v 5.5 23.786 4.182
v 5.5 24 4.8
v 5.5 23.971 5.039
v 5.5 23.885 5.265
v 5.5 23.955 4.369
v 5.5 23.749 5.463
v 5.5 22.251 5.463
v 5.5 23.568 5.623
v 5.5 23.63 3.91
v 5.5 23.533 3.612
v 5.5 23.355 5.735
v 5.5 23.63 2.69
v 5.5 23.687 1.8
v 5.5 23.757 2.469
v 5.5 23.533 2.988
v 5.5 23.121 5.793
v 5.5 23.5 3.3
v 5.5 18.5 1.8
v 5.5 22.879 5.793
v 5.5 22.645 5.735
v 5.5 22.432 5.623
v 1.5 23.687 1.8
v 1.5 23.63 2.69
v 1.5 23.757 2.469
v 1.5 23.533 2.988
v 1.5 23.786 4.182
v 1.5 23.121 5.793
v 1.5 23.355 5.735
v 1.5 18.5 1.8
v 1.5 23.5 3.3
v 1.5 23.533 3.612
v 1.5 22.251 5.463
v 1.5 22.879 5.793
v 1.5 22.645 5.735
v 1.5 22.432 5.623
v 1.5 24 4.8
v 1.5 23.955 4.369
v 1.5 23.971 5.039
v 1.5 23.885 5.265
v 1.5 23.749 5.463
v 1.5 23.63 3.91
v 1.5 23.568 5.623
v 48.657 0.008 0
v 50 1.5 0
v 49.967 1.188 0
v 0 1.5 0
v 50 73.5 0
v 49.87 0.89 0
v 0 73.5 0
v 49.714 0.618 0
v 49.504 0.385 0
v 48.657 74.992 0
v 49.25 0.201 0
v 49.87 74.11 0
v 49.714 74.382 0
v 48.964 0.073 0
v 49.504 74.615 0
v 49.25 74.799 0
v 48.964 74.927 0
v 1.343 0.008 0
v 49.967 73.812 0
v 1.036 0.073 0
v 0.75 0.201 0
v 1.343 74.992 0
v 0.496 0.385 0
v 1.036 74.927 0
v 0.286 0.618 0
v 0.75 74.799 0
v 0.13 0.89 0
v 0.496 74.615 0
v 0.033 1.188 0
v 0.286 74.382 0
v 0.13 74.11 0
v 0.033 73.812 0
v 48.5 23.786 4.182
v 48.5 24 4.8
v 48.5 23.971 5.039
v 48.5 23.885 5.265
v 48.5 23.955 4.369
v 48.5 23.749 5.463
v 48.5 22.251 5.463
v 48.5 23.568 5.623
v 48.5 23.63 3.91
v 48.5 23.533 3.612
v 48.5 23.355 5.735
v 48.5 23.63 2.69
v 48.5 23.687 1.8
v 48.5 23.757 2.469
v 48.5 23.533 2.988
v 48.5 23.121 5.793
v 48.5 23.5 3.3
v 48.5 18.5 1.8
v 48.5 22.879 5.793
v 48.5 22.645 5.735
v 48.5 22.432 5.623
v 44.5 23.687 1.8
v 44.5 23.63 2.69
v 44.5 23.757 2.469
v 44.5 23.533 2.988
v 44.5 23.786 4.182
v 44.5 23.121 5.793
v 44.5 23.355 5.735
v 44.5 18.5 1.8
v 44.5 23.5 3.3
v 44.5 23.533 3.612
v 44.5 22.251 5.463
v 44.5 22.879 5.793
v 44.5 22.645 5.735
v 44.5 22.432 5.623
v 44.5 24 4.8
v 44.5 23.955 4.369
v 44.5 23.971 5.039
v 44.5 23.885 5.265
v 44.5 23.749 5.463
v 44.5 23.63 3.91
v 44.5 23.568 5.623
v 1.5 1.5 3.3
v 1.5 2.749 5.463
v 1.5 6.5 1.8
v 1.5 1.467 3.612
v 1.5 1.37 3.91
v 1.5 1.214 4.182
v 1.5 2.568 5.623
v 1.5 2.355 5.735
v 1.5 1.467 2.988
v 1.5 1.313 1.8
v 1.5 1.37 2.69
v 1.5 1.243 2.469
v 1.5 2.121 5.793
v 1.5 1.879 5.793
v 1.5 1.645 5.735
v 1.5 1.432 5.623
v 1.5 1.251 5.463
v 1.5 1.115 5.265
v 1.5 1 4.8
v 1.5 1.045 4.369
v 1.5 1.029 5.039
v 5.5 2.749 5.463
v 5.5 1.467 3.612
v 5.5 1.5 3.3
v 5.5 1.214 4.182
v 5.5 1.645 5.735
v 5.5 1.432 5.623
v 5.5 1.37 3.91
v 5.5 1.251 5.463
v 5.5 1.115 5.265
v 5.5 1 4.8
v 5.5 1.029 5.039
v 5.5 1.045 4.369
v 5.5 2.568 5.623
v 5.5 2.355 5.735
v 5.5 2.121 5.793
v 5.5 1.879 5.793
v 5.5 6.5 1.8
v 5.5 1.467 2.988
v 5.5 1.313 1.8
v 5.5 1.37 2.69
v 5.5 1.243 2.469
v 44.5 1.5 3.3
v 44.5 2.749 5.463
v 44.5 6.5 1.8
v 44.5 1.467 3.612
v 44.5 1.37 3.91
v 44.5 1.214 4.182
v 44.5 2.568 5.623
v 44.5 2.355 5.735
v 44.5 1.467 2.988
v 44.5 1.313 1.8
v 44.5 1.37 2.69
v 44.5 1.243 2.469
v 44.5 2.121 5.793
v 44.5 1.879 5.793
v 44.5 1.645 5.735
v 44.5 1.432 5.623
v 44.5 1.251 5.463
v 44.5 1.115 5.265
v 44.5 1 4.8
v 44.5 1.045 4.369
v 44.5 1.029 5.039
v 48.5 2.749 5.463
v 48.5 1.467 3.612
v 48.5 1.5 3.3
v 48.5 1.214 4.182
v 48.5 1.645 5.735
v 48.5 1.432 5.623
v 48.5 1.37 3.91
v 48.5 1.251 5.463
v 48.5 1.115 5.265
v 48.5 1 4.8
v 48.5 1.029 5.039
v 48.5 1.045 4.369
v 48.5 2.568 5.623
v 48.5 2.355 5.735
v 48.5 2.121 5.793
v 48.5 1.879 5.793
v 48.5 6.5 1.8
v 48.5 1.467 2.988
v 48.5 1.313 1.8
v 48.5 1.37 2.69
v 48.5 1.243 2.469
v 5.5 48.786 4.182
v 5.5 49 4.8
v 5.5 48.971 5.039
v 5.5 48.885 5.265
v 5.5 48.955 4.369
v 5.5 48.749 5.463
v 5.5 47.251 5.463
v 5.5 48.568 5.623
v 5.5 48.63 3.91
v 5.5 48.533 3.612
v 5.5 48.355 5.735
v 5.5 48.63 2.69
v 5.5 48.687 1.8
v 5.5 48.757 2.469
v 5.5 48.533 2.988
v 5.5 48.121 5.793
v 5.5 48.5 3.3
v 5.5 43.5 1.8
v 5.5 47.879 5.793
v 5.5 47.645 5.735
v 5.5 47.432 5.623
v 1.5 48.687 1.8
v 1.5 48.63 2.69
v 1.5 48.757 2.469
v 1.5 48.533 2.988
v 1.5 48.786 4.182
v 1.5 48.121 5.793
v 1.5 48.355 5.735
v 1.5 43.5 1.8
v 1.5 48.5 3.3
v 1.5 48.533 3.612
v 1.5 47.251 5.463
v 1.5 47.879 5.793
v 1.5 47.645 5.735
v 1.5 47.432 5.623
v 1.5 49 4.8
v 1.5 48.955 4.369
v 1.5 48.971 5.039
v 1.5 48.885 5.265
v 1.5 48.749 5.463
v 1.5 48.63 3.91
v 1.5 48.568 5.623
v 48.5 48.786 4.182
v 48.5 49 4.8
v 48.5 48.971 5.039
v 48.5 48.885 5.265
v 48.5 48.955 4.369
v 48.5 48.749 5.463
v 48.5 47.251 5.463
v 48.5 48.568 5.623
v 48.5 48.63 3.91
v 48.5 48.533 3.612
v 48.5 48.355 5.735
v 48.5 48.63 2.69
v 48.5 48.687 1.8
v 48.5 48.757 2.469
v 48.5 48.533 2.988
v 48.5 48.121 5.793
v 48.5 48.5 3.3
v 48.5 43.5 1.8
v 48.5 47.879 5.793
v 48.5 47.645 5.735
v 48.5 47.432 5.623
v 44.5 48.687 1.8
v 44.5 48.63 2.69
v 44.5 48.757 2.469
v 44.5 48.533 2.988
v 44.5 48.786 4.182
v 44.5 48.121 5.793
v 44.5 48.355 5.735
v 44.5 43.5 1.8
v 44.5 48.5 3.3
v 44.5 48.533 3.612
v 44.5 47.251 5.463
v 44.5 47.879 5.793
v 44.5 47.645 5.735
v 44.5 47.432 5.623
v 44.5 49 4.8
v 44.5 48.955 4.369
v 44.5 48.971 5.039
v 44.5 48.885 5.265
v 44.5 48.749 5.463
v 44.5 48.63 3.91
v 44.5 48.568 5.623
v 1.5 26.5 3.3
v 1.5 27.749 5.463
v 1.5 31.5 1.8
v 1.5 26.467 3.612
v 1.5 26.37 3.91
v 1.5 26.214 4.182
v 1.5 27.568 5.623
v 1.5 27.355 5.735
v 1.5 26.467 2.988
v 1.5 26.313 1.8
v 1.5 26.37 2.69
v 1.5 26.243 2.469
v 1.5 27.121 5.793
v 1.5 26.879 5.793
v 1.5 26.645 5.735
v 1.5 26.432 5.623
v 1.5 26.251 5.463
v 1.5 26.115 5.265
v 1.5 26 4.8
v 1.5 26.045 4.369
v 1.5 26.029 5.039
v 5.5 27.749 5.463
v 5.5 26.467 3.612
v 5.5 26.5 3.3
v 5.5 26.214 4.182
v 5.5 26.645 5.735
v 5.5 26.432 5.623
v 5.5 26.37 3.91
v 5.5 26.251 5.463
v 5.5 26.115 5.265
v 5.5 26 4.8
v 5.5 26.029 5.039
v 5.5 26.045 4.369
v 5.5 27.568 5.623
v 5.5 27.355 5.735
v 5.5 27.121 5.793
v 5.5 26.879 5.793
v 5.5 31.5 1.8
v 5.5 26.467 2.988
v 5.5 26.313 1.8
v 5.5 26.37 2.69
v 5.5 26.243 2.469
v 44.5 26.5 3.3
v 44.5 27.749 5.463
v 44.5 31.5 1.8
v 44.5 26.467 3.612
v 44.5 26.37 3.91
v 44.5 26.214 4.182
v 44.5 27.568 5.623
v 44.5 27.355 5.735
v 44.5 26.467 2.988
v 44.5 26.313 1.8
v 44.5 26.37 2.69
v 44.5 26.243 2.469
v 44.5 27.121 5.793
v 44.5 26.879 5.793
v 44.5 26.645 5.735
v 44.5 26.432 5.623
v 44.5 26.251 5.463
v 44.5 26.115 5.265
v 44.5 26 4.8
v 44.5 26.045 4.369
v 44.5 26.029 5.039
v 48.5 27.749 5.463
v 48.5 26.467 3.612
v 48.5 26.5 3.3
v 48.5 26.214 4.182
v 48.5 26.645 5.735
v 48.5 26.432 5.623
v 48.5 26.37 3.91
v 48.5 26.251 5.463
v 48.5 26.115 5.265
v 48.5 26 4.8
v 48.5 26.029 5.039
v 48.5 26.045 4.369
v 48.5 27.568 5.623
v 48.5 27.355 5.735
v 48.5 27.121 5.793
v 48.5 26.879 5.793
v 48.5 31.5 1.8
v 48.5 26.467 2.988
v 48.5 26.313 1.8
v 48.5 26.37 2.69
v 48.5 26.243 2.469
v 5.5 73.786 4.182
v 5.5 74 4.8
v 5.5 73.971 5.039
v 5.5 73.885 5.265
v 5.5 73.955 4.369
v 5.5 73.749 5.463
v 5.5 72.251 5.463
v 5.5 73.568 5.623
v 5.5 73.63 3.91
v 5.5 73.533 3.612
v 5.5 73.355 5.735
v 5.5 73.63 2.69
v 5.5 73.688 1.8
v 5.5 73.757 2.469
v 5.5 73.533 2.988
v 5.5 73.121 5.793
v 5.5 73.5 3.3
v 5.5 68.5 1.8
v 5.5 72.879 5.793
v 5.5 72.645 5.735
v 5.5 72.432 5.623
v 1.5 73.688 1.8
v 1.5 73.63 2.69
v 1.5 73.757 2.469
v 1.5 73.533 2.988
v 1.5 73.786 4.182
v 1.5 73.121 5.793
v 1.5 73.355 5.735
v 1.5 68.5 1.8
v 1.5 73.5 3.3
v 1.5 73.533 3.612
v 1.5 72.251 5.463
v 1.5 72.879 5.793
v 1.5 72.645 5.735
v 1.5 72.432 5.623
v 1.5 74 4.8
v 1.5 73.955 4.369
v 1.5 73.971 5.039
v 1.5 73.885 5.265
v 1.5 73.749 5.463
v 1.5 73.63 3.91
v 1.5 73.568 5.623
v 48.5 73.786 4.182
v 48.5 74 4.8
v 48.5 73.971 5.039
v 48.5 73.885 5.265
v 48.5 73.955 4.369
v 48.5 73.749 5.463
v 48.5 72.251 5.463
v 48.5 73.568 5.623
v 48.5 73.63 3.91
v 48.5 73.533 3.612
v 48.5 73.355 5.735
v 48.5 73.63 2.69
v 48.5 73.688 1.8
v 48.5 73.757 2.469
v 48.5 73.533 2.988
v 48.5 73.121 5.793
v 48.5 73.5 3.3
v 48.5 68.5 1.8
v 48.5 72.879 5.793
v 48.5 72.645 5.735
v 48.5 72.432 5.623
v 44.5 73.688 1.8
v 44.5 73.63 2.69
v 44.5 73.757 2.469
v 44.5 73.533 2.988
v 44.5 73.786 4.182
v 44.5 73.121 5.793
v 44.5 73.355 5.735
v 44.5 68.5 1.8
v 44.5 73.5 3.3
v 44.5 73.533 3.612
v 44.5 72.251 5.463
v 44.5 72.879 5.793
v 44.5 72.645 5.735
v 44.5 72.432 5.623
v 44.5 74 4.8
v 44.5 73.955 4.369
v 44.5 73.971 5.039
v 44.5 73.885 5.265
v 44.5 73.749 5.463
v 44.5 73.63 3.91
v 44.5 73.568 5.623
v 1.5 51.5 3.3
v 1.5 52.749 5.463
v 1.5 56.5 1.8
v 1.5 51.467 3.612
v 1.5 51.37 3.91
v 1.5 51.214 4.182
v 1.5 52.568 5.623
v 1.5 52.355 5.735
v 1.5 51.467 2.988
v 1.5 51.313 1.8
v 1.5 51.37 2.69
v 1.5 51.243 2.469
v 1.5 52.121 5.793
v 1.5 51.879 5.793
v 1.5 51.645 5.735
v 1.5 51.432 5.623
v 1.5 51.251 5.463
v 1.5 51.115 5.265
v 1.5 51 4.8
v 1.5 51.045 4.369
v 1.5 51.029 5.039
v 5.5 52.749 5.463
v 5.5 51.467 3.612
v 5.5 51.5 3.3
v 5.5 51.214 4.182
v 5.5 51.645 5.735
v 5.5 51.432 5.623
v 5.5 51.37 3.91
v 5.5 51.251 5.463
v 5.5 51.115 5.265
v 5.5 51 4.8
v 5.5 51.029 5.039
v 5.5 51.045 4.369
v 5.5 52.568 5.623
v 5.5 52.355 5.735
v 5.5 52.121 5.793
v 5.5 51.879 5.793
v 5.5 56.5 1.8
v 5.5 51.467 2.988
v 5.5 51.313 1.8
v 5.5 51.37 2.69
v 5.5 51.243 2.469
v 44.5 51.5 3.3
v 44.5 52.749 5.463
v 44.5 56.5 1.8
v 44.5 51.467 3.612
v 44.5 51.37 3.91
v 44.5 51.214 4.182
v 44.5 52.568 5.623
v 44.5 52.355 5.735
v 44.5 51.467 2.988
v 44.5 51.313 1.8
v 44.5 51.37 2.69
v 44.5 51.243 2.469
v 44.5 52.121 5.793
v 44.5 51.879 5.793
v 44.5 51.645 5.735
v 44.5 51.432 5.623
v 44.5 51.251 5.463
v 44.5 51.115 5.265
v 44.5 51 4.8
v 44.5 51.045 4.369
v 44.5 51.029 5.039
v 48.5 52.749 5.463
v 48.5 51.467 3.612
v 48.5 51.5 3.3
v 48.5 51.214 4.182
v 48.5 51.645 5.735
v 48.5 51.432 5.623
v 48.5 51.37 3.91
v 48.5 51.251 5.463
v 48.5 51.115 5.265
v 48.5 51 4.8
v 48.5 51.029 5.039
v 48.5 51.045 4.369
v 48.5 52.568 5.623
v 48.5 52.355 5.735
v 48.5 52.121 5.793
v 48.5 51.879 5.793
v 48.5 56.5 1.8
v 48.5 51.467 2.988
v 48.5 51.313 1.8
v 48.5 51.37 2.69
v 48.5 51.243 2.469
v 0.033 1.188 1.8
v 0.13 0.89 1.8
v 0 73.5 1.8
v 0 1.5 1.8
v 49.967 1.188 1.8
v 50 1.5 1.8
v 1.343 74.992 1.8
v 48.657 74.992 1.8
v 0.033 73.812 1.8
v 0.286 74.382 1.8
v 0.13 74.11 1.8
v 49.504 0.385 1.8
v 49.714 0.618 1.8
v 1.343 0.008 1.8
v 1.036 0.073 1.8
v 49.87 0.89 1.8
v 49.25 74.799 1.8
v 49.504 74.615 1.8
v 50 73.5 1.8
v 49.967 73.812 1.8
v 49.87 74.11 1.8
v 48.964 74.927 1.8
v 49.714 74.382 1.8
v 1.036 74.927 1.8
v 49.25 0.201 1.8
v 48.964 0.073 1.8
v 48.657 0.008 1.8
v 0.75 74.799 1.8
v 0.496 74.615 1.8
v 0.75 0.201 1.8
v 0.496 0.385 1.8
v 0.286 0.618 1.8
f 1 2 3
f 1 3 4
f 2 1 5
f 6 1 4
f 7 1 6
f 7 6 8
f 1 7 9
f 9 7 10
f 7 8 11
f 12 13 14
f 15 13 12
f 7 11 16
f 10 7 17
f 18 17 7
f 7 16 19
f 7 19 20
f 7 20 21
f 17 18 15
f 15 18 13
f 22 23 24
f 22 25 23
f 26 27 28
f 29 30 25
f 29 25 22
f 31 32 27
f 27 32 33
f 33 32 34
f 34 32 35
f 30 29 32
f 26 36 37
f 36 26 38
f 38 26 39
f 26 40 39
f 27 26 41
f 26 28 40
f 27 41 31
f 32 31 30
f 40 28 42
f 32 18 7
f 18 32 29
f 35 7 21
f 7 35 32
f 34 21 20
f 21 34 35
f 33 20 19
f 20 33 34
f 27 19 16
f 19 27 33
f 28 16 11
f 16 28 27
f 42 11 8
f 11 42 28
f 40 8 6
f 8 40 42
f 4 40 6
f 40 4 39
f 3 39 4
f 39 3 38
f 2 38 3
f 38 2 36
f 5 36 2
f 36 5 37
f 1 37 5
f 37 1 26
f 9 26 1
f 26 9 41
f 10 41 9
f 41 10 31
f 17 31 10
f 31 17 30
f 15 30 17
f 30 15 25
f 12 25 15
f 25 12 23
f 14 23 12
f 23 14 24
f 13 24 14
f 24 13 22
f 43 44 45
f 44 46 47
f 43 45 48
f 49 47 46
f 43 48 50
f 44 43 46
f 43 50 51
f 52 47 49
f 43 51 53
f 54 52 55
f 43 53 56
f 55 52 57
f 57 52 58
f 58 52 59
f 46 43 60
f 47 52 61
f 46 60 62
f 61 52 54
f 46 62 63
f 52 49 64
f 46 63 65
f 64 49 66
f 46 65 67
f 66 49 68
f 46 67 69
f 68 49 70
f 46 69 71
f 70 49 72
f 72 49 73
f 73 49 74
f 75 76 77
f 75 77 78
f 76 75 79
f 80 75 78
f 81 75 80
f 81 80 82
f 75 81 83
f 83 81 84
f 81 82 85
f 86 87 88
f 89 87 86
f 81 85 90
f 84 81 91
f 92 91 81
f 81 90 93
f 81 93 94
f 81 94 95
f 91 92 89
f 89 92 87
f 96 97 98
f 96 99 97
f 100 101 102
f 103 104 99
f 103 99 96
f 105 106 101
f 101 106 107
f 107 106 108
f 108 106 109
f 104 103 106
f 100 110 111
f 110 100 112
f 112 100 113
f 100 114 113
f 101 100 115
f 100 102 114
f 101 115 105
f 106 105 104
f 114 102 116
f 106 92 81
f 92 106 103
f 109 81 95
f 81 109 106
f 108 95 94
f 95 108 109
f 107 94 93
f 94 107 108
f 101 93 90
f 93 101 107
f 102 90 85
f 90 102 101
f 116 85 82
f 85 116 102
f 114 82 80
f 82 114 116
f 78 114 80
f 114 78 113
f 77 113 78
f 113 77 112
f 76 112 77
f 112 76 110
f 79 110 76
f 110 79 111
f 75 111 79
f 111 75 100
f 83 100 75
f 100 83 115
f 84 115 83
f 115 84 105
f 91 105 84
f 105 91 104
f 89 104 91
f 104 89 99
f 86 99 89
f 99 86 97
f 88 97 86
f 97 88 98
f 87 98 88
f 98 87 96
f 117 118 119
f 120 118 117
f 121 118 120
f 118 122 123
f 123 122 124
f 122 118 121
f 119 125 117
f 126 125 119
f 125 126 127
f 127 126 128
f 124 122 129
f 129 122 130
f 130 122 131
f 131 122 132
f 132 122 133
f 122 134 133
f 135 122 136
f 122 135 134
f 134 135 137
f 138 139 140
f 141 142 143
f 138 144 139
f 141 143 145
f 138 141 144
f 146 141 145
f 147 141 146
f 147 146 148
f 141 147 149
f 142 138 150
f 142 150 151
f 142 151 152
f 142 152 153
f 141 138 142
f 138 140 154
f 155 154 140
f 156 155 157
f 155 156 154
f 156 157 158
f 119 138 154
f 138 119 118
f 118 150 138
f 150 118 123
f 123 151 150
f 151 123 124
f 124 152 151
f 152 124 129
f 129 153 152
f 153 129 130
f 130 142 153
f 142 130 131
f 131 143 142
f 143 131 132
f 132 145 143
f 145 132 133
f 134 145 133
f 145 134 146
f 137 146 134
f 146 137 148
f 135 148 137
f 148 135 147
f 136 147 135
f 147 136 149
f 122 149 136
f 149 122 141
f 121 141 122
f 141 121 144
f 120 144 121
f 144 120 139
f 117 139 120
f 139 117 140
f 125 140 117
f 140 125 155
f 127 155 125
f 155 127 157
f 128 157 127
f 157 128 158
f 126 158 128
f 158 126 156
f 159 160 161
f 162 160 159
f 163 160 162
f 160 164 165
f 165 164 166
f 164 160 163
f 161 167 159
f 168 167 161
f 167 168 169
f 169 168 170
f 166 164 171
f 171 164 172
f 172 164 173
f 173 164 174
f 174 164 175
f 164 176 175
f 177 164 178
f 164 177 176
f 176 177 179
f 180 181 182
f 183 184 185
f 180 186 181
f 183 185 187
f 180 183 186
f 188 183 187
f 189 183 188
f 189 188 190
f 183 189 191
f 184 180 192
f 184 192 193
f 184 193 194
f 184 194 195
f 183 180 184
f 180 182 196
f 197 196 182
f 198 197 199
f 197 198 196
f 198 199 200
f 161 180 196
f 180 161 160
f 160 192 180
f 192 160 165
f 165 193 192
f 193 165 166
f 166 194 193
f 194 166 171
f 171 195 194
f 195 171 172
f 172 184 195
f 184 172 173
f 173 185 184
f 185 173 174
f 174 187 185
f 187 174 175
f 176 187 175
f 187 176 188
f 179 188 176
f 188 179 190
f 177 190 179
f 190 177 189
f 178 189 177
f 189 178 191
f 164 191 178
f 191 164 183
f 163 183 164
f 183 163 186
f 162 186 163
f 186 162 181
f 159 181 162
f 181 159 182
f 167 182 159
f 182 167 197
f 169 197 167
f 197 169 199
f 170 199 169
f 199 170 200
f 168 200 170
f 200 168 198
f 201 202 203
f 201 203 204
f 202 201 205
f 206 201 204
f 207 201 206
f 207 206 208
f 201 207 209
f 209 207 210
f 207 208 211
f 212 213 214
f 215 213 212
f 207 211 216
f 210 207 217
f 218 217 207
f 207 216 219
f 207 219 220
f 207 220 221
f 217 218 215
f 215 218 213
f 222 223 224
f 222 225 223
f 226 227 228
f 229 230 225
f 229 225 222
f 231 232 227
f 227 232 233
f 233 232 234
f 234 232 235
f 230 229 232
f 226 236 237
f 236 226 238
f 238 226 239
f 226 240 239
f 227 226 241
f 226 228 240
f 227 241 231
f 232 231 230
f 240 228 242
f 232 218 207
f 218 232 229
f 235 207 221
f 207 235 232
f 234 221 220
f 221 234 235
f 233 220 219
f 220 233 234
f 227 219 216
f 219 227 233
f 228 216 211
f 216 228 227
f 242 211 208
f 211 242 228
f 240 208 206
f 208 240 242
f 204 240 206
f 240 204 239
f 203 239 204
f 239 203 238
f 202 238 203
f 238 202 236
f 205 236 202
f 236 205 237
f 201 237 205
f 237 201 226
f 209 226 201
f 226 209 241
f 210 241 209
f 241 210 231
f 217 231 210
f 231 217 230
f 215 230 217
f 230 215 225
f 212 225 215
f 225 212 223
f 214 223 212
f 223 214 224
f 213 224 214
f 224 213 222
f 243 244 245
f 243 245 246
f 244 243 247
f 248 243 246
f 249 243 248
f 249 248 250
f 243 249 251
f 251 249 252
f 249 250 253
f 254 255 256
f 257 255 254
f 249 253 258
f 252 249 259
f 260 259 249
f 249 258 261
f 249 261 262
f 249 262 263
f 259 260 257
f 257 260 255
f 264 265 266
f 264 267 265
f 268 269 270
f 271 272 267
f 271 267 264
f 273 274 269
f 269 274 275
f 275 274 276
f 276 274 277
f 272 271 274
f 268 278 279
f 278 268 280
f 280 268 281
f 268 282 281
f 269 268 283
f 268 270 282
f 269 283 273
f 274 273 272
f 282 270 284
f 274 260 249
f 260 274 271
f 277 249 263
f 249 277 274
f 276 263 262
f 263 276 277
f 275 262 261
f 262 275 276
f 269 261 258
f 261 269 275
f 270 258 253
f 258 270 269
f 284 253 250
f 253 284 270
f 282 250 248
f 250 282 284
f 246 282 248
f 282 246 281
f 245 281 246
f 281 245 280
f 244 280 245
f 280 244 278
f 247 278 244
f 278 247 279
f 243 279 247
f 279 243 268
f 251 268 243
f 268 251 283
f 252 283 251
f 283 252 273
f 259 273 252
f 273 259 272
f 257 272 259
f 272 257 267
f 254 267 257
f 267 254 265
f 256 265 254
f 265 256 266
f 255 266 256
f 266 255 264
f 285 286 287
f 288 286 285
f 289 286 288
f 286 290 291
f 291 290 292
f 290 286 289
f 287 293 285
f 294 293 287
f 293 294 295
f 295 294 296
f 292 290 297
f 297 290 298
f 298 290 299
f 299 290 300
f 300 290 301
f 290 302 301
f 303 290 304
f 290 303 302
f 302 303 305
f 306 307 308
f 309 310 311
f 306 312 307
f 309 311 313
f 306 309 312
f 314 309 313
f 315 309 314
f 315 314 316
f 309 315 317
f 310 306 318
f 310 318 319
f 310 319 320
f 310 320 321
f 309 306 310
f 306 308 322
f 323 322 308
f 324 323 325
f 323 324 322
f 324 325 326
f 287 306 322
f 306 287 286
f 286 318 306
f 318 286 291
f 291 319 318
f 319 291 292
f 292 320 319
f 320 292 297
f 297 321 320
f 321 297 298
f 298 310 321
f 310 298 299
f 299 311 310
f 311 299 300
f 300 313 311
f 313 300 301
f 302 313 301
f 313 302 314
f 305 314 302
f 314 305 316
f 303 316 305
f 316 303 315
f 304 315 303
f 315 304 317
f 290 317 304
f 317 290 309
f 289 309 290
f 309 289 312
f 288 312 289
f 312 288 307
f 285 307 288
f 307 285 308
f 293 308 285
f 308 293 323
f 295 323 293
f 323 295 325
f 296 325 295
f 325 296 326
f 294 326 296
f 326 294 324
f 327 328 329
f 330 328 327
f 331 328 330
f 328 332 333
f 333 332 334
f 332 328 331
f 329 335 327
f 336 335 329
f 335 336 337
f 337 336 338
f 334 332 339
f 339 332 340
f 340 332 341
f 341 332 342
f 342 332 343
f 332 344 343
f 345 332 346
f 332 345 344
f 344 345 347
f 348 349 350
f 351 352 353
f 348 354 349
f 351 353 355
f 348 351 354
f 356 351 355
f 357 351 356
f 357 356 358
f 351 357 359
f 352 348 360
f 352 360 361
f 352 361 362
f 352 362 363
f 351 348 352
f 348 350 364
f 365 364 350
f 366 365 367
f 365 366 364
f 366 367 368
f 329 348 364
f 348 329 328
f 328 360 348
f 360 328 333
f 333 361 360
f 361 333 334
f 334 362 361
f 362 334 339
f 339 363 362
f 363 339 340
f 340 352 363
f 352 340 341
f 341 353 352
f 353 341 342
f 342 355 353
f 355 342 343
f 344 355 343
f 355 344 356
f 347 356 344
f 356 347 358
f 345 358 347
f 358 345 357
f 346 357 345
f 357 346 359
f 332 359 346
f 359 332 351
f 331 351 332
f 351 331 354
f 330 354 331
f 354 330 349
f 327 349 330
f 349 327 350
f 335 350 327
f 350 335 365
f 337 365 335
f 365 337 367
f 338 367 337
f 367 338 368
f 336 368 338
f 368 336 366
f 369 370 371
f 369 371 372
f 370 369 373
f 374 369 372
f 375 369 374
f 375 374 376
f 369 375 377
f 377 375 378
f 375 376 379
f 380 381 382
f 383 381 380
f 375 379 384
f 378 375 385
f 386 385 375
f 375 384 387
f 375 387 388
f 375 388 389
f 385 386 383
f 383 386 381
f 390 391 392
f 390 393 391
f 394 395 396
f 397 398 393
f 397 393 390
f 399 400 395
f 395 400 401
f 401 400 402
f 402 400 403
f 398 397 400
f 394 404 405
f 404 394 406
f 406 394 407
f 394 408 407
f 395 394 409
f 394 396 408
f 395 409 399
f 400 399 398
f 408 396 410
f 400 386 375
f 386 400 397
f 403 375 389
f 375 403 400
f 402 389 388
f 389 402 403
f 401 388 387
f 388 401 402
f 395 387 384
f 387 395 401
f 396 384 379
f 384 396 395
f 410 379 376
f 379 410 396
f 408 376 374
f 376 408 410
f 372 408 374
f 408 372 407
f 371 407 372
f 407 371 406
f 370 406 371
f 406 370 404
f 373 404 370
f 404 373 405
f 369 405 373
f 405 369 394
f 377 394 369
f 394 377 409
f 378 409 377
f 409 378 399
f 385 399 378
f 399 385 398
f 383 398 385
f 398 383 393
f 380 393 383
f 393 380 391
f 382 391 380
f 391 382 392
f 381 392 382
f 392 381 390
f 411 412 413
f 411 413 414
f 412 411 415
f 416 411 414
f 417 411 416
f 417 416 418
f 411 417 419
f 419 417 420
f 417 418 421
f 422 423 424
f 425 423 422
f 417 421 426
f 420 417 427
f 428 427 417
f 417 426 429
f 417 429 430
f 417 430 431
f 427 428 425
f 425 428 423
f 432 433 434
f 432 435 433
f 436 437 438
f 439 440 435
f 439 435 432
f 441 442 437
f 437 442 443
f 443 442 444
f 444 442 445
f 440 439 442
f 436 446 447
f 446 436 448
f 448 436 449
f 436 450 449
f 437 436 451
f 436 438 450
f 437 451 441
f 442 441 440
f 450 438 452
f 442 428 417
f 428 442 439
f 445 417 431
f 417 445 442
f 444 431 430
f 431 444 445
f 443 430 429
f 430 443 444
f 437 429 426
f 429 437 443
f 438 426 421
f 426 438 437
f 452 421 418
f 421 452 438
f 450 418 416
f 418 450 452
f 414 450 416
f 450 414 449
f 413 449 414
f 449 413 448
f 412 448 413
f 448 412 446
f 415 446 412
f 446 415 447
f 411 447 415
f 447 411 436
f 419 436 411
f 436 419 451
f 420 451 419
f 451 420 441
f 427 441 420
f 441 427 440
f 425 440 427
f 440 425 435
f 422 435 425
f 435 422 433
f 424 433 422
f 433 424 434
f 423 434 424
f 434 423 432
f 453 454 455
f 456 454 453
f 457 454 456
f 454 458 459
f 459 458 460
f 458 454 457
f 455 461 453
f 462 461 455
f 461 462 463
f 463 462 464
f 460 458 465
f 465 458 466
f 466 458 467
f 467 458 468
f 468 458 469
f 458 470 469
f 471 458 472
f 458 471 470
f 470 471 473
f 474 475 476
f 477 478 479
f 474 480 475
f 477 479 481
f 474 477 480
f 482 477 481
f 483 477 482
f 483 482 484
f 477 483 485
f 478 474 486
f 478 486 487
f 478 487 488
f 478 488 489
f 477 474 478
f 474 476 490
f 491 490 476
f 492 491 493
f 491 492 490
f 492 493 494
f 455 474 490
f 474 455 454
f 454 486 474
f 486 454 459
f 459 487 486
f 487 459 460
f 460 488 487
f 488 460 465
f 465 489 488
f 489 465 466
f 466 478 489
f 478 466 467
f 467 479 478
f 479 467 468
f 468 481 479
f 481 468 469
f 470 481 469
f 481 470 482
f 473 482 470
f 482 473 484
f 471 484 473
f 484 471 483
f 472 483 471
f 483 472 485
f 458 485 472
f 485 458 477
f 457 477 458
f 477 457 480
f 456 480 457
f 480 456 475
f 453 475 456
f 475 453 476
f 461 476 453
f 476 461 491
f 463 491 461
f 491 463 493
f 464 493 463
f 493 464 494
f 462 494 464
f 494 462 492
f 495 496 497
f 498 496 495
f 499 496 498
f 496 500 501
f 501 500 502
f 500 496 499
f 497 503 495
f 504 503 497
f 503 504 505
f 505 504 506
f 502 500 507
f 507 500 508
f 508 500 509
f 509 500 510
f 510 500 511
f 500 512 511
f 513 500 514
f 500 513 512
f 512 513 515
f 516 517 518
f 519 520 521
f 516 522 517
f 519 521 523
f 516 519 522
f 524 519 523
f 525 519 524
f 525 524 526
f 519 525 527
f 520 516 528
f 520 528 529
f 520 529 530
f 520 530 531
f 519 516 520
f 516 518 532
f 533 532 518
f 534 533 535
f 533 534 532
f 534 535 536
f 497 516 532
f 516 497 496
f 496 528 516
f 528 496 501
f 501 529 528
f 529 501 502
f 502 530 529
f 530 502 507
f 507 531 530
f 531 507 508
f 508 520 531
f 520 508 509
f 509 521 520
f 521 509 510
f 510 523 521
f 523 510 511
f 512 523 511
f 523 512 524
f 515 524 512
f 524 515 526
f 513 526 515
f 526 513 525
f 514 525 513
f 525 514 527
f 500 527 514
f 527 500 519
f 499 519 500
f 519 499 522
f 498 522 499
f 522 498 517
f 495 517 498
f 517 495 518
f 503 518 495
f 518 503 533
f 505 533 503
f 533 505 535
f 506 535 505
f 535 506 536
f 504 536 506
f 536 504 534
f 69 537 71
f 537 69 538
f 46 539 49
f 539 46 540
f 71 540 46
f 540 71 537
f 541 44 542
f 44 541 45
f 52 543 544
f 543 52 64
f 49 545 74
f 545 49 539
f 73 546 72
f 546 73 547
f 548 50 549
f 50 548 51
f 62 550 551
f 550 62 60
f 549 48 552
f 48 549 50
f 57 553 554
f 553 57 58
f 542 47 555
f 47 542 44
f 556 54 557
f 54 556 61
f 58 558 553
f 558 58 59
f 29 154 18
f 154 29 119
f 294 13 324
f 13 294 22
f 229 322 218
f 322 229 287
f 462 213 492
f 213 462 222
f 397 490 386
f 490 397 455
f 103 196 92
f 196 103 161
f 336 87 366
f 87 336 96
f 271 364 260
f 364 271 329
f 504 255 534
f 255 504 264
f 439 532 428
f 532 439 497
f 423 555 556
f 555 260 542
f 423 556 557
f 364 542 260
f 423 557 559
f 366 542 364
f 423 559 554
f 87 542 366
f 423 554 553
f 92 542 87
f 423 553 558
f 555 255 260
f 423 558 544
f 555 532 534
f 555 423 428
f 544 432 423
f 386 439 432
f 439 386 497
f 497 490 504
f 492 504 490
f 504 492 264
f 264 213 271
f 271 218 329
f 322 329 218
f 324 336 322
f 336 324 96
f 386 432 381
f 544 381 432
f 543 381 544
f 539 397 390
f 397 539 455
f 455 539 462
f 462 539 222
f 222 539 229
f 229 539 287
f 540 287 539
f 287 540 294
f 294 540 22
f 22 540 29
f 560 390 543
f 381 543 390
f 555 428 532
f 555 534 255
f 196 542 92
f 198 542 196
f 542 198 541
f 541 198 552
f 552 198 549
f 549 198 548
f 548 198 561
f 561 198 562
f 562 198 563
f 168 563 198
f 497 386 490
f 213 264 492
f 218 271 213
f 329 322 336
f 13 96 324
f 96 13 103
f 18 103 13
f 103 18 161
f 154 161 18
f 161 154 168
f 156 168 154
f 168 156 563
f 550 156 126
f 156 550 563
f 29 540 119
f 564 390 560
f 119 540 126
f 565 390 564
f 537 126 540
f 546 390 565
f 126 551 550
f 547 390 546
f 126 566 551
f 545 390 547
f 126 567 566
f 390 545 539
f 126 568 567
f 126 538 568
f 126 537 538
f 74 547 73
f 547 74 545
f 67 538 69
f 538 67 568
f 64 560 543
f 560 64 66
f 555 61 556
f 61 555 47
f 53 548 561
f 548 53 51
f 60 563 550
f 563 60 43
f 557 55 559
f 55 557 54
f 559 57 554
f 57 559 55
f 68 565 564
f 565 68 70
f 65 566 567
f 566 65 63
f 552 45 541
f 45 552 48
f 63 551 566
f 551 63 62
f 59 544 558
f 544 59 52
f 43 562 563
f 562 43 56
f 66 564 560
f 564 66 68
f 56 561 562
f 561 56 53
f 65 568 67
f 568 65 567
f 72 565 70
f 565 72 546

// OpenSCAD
corner_radius = 1.5;
bar_diameter = 3;
bar_distance = 22;

foot_length = 5;
toe_diameter = 2;
foot_width = 4;

plate_length = 75;
plate_width = 50;
plate_thickness = 1.8;

$fs = .25;

module footprint() {
  difference(){
    hull() {
      square([foot_length, plate_thickness]);
      translate([.5,plate_thickness + bar_diameter])
        circle(d=toe_diameter);
    }
    translate([-bar_diameter/2,plate_thickness+bar_diameter/2])
      circle(d=bar_diameter);
  }
}

module foot() {
  rotate([90,0,90]) linear_extrude(foot_width) footprint();
}

union() {
  for (dist = [bar_diameter/2:bar_distance+bar_diameter:plate_length-foot_length]){
    translate([corner_radius+foot_width,dist+bar_distance])
      rotate([0,0,180]) foot();
    translate([plate_width-corner_radius,dist+bar_distance])
      rotate([0,0,180]) foot();
    translate([corner_radius,dist]) foot();
    translate([plate_width-foot_width-corner_radius,dist]) foot();
  }
  linear_extrude(plate_thickness) hull() {
    translate([corner_radius,corner_radius]) circle(r=corner_radius);
    translate([corner_radius,plate_length-corner_radius]) circle(r=corner_radius);
    translate([plate_width-corner_radius,corner_radius]) circle(r=corner_radius);
    translate([plate_width-corner_radius,plate_length-corner_radius]) circle(r=corner_radius);
  }
}
